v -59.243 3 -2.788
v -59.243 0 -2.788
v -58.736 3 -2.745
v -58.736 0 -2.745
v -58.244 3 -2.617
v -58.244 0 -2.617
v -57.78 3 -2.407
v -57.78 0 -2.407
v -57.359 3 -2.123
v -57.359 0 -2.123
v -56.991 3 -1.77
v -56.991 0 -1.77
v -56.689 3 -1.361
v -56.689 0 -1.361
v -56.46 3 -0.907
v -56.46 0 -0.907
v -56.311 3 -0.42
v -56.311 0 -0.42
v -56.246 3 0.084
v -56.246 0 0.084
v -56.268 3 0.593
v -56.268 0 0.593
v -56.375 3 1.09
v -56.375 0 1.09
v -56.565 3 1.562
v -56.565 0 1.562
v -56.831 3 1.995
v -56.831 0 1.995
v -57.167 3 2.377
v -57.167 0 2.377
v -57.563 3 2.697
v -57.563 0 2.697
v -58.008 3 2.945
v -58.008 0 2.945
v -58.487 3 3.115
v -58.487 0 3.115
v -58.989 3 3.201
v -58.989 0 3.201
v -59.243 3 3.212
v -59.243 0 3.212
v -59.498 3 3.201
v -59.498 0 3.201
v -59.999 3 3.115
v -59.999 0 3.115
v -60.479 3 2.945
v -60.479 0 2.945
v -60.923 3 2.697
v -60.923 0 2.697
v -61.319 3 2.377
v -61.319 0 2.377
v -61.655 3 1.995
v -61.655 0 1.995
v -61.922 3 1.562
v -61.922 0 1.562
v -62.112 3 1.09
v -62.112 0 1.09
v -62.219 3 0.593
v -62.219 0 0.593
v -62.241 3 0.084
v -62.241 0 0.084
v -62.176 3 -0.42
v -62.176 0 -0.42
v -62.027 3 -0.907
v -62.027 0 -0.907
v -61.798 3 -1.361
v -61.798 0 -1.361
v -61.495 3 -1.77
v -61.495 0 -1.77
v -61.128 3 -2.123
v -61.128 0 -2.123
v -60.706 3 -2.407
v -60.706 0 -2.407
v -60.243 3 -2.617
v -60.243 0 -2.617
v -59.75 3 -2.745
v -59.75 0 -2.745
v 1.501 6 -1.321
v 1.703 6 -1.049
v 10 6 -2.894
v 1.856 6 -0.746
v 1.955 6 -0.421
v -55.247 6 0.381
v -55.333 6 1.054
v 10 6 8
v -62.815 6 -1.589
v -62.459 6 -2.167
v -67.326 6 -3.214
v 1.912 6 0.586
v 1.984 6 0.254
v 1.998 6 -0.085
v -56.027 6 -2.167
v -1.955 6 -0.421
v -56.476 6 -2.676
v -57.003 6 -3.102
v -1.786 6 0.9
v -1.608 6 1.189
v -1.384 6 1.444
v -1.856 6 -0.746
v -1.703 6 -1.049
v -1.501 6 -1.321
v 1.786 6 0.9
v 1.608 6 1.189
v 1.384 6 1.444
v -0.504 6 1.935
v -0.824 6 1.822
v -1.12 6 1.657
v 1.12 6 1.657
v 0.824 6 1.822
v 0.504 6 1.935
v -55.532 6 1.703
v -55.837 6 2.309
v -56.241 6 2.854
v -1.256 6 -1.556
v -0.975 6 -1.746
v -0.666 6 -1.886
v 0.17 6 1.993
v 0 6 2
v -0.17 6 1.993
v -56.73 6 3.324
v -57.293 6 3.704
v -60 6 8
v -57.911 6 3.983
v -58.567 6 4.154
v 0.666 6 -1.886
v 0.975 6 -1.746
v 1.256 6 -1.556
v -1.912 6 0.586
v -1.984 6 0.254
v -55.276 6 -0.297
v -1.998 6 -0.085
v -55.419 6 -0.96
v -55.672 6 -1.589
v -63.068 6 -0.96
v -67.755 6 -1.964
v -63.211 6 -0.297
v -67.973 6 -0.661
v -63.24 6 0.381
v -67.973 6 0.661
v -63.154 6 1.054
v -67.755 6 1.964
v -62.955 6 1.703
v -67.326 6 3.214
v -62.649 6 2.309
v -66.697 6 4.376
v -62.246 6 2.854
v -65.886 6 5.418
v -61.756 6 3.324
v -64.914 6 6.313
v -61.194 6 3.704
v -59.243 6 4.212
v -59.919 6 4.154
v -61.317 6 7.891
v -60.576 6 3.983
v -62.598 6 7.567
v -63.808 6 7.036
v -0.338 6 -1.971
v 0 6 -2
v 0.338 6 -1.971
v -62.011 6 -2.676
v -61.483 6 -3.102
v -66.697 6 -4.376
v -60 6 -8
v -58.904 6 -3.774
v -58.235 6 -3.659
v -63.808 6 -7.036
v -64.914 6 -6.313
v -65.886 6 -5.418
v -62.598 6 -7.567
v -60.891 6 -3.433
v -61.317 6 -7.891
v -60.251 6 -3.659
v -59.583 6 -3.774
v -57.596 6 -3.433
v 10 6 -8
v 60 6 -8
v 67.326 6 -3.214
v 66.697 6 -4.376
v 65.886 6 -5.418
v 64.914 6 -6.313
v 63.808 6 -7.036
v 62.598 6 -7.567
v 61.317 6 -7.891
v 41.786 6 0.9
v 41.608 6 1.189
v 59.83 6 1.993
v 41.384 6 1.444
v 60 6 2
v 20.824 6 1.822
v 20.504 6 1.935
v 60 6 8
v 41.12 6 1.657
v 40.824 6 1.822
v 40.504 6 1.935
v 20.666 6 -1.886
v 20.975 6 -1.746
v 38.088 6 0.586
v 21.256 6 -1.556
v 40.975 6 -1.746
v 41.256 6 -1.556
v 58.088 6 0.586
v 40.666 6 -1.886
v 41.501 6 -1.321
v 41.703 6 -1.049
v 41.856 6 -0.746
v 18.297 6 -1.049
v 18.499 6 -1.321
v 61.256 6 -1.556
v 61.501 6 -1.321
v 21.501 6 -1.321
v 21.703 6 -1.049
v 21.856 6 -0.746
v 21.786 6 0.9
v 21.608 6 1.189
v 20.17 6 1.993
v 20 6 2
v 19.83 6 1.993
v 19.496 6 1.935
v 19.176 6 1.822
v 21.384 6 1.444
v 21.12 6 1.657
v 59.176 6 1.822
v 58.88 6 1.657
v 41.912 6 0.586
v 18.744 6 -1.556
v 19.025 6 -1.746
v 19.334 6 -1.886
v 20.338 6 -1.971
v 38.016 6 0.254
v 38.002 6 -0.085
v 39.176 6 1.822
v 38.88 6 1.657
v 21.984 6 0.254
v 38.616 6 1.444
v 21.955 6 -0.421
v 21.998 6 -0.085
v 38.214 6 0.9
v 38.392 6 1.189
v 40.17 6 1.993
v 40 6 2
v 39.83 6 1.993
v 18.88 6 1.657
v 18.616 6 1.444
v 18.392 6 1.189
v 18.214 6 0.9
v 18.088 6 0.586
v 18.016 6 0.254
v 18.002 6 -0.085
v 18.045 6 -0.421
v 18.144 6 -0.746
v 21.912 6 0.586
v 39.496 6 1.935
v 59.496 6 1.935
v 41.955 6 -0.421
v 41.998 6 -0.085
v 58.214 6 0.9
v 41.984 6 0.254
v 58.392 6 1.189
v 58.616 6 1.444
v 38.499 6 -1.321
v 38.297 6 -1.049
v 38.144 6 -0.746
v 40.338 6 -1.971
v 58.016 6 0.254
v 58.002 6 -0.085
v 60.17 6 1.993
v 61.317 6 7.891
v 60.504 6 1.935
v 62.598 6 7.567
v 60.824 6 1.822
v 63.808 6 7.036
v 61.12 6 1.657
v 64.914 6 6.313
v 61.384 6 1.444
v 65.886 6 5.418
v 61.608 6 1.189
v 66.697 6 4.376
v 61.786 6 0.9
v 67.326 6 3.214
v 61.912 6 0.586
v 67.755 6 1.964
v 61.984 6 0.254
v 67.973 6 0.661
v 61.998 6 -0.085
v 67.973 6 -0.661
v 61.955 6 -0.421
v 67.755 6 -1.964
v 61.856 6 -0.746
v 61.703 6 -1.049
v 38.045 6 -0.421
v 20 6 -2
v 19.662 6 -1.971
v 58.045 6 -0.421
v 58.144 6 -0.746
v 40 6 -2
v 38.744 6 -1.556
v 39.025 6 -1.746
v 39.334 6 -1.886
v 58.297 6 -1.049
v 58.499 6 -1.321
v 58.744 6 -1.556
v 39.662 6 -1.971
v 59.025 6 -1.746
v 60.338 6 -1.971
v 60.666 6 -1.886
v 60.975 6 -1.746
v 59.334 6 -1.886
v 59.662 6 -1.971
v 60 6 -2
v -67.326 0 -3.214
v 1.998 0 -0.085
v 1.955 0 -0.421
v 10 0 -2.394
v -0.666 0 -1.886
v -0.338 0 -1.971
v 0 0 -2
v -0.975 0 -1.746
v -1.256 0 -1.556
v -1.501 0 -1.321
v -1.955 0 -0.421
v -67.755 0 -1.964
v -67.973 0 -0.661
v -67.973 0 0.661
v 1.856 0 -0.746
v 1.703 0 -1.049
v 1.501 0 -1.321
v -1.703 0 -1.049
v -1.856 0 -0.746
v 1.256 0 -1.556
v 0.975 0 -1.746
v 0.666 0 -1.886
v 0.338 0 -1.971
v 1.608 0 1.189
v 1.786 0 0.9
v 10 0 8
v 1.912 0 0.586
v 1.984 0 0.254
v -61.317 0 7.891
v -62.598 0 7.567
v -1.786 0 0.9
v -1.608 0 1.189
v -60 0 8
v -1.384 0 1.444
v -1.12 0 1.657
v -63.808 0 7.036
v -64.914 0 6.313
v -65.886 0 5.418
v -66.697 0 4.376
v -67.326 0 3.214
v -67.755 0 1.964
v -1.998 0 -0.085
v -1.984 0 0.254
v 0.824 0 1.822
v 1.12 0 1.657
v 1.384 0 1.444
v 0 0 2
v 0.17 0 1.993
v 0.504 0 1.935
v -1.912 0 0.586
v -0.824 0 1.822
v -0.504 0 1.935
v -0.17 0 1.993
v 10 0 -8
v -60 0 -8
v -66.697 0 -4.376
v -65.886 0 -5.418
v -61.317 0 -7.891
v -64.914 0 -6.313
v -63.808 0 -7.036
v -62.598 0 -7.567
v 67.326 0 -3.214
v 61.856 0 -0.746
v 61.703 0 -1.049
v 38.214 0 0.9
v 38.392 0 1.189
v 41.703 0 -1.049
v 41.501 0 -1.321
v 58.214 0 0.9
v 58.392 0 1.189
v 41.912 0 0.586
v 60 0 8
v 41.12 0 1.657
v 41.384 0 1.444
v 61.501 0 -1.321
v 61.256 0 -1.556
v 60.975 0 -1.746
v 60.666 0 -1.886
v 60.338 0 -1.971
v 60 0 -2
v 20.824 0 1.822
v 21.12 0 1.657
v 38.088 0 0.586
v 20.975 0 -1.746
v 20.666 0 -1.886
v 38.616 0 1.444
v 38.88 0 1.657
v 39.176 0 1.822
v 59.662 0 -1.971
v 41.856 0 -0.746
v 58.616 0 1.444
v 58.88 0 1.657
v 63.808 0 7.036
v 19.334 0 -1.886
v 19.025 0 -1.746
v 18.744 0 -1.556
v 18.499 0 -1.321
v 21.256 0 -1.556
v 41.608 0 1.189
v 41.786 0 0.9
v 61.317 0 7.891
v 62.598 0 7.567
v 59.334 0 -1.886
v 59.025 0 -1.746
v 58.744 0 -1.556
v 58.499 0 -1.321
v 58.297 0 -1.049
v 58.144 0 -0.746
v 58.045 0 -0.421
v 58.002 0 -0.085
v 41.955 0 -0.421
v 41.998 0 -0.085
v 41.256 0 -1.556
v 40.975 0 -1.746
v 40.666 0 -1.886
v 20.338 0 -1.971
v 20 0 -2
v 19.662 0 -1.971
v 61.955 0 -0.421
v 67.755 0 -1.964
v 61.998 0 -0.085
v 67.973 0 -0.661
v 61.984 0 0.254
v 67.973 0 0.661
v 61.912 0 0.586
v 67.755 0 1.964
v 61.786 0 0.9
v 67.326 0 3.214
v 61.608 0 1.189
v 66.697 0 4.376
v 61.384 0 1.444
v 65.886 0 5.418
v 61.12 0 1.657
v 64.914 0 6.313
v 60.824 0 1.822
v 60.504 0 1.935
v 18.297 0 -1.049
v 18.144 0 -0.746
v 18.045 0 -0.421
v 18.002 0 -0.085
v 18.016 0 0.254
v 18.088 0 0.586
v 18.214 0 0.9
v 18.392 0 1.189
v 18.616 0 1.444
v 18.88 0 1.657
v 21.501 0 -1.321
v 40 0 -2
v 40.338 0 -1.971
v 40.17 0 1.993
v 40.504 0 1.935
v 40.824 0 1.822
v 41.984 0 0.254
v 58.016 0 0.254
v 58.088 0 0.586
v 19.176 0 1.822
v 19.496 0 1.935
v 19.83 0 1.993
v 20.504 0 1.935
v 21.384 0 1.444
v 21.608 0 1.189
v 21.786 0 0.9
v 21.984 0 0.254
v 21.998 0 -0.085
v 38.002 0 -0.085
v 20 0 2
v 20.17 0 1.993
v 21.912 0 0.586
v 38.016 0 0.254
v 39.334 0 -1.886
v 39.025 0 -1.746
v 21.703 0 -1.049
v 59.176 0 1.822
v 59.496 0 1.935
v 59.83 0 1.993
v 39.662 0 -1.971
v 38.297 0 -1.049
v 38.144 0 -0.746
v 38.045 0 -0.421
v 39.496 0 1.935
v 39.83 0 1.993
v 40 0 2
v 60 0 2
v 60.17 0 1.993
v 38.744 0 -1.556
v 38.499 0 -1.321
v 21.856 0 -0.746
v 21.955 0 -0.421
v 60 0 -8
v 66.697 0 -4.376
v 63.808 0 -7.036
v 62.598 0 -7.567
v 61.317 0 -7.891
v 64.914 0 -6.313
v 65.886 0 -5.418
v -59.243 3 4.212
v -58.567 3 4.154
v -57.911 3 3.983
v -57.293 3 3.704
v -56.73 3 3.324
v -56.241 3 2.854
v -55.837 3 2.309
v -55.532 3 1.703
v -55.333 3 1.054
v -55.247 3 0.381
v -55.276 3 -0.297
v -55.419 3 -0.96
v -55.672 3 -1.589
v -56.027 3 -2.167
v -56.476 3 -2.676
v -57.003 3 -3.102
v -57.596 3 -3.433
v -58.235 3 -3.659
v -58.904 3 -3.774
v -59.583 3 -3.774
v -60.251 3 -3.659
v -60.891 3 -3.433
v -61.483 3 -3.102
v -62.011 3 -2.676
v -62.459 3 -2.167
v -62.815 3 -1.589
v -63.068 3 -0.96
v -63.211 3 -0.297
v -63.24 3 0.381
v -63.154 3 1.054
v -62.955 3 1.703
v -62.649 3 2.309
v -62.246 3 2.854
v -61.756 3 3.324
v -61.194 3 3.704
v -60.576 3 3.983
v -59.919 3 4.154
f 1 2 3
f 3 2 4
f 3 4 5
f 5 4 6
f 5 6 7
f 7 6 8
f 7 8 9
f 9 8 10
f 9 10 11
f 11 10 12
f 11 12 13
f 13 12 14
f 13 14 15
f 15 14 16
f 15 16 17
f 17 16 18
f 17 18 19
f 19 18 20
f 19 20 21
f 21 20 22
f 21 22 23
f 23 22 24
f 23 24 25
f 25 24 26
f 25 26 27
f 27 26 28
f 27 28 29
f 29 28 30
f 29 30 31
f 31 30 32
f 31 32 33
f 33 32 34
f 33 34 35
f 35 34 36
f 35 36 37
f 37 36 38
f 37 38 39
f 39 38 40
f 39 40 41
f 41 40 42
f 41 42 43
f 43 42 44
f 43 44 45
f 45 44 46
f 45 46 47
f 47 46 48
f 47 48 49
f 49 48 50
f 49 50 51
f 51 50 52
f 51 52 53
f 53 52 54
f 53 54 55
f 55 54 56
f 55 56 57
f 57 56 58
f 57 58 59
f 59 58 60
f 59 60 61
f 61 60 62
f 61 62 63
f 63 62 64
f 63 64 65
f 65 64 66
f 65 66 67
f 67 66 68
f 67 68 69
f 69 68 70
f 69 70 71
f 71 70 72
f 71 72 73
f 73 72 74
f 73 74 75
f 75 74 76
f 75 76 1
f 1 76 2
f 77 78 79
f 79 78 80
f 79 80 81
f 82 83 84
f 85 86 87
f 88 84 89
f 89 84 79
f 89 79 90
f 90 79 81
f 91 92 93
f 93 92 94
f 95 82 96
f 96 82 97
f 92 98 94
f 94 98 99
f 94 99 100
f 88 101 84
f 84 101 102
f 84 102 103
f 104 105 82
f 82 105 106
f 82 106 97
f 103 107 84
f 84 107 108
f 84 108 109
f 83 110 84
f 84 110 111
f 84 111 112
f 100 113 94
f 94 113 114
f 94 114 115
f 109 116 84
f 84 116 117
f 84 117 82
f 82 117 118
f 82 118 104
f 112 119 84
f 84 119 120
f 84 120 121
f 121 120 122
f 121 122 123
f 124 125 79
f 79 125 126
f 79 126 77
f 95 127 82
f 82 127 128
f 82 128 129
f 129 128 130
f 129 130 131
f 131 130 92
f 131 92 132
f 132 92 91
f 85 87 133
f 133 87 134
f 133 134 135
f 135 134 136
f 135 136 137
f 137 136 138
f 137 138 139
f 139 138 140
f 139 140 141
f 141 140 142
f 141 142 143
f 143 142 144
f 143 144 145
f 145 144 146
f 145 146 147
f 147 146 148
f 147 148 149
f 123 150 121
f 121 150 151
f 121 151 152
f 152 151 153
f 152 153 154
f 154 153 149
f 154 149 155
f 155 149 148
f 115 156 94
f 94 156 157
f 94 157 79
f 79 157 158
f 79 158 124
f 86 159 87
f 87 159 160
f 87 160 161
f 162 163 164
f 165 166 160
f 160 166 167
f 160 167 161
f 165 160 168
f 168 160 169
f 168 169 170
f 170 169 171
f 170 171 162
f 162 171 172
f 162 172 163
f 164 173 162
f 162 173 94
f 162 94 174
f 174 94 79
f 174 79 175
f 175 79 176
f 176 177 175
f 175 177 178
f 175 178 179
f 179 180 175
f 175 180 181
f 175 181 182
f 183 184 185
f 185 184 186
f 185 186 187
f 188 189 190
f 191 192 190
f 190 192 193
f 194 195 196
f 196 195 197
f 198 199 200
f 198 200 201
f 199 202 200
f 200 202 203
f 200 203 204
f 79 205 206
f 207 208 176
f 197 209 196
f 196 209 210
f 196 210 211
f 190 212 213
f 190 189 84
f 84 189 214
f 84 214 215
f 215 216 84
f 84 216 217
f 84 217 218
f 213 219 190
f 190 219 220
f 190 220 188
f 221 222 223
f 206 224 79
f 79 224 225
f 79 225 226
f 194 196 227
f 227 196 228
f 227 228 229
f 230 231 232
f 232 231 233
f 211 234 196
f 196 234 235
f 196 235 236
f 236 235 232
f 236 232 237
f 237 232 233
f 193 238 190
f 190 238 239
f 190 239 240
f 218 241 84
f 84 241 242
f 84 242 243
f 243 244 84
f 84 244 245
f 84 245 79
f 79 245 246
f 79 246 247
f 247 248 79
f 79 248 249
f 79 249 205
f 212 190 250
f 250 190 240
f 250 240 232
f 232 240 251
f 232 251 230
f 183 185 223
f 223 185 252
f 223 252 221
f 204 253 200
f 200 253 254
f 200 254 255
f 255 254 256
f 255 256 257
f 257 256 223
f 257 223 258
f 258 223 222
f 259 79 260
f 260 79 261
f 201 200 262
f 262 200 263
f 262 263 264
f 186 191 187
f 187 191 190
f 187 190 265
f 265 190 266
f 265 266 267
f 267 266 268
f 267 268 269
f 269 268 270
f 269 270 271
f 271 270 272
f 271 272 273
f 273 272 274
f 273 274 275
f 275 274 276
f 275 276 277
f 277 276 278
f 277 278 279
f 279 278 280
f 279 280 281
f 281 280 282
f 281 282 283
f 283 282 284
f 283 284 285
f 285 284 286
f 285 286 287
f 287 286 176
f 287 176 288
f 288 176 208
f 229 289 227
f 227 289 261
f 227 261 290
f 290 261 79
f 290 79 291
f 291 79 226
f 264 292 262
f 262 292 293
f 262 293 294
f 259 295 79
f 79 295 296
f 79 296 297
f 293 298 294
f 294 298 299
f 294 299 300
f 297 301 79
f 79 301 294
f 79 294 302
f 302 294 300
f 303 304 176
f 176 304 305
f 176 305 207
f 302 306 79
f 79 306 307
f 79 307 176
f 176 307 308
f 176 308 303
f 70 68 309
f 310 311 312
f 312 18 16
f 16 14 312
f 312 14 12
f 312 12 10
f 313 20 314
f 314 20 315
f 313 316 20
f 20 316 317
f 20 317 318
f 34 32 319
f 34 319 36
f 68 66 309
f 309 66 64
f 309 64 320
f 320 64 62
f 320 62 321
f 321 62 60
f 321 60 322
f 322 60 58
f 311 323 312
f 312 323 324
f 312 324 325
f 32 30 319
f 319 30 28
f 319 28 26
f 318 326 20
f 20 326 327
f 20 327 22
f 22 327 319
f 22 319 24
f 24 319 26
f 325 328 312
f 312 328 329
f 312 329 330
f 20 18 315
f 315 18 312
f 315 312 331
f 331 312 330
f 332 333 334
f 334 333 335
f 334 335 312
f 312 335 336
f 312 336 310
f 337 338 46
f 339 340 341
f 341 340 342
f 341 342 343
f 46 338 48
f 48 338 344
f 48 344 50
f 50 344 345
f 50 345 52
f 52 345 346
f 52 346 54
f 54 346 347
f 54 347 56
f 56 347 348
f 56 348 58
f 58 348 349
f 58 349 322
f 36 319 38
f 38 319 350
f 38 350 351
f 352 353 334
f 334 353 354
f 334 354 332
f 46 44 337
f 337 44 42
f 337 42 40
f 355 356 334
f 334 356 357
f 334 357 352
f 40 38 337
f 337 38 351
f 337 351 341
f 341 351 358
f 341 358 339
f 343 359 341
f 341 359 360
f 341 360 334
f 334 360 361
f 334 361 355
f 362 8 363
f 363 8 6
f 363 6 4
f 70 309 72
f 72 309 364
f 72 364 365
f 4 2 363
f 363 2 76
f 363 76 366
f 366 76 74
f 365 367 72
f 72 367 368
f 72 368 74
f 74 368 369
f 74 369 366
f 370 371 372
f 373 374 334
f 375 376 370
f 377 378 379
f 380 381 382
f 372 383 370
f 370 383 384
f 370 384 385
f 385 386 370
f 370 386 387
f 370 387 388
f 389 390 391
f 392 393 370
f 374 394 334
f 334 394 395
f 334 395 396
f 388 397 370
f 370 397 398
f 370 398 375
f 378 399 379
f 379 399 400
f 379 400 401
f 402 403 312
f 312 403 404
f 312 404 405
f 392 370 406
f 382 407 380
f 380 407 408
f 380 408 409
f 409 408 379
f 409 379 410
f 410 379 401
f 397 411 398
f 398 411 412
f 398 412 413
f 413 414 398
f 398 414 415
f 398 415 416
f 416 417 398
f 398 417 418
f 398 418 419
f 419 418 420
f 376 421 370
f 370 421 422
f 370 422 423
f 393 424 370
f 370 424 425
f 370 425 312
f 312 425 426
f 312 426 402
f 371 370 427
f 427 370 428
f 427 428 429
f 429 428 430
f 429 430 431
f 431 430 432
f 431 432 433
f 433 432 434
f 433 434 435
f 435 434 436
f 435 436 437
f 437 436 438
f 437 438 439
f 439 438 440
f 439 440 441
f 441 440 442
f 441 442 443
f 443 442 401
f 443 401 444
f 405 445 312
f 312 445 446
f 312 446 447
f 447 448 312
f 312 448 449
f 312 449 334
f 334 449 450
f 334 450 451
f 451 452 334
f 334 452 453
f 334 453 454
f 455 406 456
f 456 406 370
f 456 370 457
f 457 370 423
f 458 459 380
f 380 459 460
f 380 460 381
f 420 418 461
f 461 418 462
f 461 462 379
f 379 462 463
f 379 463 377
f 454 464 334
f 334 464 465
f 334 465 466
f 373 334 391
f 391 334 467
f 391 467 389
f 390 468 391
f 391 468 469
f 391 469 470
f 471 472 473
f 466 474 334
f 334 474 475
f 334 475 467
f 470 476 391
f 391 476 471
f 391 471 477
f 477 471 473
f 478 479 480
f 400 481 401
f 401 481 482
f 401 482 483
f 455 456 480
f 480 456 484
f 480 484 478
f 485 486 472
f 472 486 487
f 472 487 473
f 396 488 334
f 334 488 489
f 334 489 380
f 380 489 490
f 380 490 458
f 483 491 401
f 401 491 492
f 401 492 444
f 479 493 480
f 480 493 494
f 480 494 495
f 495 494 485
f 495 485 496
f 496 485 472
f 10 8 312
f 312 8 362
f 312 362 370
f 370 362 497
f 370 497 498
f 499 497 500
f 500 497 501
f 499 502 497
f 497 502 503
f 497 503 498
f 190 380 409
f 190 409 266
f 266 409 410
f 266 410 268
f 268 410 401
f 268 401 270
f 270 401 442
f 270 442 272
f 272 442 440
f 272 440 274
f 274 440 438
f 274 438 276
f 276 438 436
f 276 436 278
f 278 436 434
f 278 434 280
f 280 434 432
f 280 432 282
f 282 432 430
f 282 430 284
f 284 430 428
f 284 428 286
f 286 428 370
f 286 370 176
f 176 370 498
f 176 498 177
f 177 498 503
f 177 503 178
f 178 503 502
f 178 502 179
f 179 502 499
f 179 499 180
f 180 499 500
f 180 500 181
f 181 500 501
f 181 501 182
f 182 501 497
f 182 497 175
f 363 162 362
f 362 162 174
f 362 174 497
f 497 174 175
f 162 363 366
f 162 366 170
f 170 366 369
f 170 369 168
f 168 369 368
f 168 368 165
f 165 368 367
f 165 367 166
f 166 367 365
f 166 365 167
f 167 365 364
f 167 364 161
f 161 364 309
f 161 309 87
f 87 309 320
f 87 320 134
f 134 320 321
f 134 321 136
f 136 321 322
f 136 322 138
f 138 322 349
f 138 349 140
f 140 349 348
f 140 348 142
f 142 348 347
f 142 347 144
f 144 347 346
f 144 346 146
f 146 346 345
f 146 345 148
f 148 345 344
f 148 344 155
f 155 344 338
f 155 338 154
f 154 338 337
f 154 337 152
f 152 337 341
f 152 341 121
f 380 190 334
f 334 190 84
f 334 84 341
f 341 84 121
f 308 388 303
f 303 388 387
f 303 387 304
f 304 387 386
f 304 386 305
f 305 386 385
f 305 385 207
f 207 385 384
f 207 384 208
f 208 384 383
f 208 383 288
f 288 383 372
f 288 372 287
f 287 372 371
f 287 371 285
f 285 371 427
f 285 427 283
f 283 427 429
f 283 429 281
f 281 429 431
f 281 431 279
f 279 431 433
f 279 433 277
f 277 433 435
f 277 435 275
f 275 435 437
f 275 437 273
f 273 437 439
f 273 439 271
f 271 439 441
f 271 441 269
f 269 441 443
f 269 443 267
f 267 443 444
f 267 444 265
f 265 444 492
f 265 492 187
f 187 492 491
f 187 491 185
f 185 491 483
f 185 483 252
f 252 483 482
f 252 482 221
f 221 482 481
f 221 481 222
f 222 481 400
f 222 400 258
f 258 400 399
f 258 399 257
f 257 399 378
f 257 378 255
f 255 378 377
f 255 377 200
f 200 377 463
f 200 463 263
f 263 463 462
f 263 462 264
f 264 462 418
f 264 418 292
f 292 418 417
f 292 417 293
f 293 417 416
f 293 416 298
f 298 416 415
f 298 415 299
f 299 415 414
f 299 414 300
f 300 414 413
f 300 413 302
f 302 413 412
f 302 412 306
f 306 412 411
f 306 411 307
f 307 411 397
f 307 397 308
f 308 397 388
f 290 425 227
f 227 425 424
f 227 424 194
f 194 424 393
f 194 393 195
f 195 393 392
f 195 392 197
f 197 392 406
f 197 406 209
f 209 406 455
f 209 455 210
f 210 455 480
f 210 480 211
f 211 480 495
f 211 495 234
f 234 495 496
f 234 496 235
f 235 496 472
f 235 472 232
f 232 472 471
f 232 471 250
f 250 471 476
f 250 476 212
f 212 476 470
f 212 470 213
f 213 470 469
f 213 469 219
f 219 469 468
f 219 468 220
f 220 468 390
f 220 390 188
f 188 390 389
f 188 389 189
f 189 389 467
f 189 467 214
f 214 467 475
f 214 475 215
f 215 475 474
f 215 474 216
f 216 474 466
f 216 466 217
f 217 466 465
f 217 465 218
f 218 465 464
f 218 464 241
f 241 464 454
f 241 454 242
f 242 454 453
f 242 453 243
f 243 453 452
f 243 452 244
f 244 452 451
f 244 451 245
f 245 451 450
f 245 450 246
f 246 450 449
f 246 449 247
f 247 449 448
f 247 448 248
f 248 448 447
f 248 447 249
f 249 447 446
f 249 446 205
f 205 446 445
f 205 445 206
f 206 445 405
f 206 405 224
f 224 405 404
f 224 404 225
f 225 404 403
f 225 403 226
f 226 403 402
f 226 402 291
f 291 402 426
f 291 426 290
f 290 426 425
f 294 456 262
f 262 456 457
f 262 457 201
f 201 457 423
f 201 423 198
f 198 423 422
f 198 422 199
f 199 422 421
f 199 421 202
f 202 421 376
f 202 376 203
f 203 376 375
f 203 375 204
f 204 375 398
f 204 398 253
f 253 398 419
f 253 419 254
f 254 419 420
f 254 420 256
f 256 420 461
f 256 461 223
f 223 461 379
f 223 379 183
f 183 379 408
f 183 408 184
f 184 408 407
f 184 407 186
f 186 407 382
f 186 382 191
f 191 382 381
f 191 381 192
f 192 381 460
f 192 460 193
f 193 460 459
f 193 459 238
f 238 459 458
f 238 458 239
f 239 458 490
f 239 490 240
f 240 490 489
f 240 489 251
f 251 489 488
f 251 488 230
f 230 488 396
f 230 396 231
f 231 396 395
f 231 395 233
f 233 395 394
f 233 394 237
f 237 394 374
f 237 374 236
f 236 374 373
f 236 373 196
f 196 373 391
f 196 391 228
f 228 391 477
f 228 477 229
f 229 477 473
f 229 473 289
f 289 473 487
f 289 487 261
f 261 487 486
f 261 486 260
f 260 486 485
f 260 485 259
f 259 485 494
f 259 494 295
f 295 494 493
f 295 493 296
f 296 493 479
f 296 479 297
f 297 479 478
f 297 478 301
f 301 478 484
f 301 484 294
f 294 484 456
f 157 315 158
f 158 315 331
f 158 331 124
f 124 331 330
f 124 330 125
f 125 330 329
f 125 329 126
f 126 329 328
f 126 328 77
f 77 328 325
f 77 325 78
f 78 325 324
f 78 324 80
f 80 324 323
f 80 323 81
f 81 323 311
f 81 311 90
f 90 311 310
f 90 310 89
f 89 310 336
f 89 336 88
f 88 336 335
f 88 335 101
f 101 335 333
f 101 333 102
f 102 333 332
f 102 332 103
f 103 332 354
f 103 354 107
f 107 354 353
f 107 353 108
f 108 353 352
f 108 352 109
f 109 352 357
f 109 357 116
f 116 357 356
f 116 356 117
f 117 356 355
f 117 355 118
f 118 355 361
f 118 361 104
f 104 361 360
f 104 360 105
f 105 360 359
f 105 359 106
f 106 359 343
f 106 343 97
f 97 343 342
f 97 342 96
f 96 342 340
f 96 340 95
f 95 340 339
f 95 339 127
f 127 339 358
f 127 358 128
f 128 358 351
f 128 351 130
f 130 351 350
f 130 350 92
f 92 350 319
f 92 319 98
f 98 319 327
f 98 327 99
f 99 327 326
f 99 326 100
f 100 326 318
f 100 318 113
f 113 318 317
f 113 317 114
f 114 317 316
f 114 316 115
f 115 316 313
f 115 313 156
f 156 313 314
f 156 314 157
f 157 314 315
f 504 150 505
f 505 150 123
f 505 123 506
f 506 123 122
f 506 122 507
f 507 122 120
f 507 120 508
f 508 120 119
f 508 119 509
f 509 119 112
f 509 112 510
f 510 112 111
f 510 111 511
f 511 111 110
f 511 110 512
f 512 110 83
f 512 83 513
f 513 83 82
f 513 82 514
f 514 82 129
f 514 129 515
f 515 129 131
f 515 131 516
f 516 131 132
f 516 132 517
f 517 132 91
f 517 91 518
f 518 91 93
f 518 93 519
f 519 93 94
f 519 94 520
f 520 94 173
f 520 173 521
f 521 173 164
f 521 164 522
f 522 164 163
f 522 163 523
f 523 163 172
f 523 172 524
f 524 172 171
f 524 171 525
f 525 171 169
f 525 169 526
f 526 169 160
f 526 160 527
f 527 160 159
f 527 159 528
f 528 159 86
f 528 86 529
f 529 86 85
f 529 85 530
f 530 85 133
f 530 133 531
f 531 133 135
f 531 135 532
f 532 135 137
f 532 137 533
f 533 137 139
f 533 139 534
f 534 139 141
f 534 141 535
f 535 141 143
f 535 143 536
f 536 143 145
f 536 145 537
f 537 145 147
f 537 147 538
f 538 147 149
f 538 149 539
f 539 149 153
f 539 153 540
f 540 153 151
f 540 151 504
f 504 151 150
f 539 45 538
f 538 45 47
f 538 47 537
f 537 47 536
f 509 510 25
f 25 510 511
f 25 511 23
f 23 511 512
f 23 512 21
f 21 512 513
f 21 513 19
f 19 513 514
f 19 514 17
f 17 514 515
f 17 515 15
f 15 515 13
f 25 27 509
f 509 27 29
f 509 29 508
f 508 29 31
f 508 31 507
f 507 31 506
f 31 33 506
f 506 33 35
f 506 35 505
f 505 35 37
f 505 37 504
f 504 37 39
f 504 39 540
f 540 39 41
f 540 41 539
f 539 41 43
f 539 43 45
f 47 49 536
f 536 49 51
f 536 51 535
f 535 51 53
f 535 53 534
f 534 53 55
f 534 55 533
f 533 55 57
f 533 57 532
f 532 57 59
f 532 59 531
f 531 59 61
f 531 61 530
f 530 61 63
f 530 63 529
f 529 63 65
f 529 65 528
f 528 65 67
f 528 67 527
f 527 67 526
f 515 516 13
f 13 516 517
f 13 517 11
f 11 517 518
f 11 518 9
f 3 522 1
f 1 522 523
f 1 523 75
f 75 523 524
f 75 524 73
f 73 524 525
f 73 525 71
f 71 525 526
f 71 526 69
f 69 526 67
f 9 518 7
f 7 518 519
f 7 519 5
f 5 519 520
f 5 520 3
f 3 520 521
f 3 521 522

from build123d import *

# Parameters (mm, degrees)
SKETCH1_R           = 3
SKETCH1_R_2         = 2
BOSS_EXTRUDE1_DEPTH = 6
SKETCH3_R           = 4
CUT_EXTRUDE1_DEPTH  = 3


with BuildPart() as part:
    # Sketch1 → Boss-Extrude1 (new body)
    with BuildSketch(Plane(origin=(0, 0, 0), x_dir=(1, 0, 0), z_dir=(0, 1, 0))):
        with BuildLine():
            Line((-60, -8), (60, -8))
            ThreePointArc((60, -8), (68, 0), (60, 8))
            Line((60, 8), (-60, 8))
            ThreePointArc((-60, 8), (-68, 0), (-60, -8))
        make_face()
        with Locations(Location((-59.243309237, -0.211557176, 0), (0, 0, 270))):
            Circle(SKETCH1_R, mode=Mode.SUBTRACT)
        with Locations(Location((60, 0, 0), (0, 0, 270))):
            Circle(SKETCH1_R_2, mode=Mode.SUBTRACT)
        with Locations(Location((20, 0, 0), (0, 0, 270))):
            Circle(SKETCH1_R_2, mode=Mode.SUBTRACT)
        with Locations(Location((40, 0, 0), (0, 0, 270))):
            Circle(SKETCH1_R_2, mode=Mode.SUBTRACT)
        with Locations(Location((0, 0, 0), (0, 0, 270))):
            Circle(SKETCH1_R_2, mode=Mode.SUBTRACT)
    extrude(amount=BOSS_EXTRUDE1_DEPTH)

    # Sketch3 → Cut-Extrude1 (cut)
    with BuildSketch(Plane(origin=(0, 6, 0), x_dir=(1, 0, 0), z_dir=(0, 1, 0))):
        with Locations(Location((-59.243309237, -0.211557176, 0), (0, 0, 270))):
            Circle(SKETCH3_R)
    extrude(amount=-CUT_EXTRUDE1_DEPTH, mode=Mode.SUBTRACT)


solid = part.part
